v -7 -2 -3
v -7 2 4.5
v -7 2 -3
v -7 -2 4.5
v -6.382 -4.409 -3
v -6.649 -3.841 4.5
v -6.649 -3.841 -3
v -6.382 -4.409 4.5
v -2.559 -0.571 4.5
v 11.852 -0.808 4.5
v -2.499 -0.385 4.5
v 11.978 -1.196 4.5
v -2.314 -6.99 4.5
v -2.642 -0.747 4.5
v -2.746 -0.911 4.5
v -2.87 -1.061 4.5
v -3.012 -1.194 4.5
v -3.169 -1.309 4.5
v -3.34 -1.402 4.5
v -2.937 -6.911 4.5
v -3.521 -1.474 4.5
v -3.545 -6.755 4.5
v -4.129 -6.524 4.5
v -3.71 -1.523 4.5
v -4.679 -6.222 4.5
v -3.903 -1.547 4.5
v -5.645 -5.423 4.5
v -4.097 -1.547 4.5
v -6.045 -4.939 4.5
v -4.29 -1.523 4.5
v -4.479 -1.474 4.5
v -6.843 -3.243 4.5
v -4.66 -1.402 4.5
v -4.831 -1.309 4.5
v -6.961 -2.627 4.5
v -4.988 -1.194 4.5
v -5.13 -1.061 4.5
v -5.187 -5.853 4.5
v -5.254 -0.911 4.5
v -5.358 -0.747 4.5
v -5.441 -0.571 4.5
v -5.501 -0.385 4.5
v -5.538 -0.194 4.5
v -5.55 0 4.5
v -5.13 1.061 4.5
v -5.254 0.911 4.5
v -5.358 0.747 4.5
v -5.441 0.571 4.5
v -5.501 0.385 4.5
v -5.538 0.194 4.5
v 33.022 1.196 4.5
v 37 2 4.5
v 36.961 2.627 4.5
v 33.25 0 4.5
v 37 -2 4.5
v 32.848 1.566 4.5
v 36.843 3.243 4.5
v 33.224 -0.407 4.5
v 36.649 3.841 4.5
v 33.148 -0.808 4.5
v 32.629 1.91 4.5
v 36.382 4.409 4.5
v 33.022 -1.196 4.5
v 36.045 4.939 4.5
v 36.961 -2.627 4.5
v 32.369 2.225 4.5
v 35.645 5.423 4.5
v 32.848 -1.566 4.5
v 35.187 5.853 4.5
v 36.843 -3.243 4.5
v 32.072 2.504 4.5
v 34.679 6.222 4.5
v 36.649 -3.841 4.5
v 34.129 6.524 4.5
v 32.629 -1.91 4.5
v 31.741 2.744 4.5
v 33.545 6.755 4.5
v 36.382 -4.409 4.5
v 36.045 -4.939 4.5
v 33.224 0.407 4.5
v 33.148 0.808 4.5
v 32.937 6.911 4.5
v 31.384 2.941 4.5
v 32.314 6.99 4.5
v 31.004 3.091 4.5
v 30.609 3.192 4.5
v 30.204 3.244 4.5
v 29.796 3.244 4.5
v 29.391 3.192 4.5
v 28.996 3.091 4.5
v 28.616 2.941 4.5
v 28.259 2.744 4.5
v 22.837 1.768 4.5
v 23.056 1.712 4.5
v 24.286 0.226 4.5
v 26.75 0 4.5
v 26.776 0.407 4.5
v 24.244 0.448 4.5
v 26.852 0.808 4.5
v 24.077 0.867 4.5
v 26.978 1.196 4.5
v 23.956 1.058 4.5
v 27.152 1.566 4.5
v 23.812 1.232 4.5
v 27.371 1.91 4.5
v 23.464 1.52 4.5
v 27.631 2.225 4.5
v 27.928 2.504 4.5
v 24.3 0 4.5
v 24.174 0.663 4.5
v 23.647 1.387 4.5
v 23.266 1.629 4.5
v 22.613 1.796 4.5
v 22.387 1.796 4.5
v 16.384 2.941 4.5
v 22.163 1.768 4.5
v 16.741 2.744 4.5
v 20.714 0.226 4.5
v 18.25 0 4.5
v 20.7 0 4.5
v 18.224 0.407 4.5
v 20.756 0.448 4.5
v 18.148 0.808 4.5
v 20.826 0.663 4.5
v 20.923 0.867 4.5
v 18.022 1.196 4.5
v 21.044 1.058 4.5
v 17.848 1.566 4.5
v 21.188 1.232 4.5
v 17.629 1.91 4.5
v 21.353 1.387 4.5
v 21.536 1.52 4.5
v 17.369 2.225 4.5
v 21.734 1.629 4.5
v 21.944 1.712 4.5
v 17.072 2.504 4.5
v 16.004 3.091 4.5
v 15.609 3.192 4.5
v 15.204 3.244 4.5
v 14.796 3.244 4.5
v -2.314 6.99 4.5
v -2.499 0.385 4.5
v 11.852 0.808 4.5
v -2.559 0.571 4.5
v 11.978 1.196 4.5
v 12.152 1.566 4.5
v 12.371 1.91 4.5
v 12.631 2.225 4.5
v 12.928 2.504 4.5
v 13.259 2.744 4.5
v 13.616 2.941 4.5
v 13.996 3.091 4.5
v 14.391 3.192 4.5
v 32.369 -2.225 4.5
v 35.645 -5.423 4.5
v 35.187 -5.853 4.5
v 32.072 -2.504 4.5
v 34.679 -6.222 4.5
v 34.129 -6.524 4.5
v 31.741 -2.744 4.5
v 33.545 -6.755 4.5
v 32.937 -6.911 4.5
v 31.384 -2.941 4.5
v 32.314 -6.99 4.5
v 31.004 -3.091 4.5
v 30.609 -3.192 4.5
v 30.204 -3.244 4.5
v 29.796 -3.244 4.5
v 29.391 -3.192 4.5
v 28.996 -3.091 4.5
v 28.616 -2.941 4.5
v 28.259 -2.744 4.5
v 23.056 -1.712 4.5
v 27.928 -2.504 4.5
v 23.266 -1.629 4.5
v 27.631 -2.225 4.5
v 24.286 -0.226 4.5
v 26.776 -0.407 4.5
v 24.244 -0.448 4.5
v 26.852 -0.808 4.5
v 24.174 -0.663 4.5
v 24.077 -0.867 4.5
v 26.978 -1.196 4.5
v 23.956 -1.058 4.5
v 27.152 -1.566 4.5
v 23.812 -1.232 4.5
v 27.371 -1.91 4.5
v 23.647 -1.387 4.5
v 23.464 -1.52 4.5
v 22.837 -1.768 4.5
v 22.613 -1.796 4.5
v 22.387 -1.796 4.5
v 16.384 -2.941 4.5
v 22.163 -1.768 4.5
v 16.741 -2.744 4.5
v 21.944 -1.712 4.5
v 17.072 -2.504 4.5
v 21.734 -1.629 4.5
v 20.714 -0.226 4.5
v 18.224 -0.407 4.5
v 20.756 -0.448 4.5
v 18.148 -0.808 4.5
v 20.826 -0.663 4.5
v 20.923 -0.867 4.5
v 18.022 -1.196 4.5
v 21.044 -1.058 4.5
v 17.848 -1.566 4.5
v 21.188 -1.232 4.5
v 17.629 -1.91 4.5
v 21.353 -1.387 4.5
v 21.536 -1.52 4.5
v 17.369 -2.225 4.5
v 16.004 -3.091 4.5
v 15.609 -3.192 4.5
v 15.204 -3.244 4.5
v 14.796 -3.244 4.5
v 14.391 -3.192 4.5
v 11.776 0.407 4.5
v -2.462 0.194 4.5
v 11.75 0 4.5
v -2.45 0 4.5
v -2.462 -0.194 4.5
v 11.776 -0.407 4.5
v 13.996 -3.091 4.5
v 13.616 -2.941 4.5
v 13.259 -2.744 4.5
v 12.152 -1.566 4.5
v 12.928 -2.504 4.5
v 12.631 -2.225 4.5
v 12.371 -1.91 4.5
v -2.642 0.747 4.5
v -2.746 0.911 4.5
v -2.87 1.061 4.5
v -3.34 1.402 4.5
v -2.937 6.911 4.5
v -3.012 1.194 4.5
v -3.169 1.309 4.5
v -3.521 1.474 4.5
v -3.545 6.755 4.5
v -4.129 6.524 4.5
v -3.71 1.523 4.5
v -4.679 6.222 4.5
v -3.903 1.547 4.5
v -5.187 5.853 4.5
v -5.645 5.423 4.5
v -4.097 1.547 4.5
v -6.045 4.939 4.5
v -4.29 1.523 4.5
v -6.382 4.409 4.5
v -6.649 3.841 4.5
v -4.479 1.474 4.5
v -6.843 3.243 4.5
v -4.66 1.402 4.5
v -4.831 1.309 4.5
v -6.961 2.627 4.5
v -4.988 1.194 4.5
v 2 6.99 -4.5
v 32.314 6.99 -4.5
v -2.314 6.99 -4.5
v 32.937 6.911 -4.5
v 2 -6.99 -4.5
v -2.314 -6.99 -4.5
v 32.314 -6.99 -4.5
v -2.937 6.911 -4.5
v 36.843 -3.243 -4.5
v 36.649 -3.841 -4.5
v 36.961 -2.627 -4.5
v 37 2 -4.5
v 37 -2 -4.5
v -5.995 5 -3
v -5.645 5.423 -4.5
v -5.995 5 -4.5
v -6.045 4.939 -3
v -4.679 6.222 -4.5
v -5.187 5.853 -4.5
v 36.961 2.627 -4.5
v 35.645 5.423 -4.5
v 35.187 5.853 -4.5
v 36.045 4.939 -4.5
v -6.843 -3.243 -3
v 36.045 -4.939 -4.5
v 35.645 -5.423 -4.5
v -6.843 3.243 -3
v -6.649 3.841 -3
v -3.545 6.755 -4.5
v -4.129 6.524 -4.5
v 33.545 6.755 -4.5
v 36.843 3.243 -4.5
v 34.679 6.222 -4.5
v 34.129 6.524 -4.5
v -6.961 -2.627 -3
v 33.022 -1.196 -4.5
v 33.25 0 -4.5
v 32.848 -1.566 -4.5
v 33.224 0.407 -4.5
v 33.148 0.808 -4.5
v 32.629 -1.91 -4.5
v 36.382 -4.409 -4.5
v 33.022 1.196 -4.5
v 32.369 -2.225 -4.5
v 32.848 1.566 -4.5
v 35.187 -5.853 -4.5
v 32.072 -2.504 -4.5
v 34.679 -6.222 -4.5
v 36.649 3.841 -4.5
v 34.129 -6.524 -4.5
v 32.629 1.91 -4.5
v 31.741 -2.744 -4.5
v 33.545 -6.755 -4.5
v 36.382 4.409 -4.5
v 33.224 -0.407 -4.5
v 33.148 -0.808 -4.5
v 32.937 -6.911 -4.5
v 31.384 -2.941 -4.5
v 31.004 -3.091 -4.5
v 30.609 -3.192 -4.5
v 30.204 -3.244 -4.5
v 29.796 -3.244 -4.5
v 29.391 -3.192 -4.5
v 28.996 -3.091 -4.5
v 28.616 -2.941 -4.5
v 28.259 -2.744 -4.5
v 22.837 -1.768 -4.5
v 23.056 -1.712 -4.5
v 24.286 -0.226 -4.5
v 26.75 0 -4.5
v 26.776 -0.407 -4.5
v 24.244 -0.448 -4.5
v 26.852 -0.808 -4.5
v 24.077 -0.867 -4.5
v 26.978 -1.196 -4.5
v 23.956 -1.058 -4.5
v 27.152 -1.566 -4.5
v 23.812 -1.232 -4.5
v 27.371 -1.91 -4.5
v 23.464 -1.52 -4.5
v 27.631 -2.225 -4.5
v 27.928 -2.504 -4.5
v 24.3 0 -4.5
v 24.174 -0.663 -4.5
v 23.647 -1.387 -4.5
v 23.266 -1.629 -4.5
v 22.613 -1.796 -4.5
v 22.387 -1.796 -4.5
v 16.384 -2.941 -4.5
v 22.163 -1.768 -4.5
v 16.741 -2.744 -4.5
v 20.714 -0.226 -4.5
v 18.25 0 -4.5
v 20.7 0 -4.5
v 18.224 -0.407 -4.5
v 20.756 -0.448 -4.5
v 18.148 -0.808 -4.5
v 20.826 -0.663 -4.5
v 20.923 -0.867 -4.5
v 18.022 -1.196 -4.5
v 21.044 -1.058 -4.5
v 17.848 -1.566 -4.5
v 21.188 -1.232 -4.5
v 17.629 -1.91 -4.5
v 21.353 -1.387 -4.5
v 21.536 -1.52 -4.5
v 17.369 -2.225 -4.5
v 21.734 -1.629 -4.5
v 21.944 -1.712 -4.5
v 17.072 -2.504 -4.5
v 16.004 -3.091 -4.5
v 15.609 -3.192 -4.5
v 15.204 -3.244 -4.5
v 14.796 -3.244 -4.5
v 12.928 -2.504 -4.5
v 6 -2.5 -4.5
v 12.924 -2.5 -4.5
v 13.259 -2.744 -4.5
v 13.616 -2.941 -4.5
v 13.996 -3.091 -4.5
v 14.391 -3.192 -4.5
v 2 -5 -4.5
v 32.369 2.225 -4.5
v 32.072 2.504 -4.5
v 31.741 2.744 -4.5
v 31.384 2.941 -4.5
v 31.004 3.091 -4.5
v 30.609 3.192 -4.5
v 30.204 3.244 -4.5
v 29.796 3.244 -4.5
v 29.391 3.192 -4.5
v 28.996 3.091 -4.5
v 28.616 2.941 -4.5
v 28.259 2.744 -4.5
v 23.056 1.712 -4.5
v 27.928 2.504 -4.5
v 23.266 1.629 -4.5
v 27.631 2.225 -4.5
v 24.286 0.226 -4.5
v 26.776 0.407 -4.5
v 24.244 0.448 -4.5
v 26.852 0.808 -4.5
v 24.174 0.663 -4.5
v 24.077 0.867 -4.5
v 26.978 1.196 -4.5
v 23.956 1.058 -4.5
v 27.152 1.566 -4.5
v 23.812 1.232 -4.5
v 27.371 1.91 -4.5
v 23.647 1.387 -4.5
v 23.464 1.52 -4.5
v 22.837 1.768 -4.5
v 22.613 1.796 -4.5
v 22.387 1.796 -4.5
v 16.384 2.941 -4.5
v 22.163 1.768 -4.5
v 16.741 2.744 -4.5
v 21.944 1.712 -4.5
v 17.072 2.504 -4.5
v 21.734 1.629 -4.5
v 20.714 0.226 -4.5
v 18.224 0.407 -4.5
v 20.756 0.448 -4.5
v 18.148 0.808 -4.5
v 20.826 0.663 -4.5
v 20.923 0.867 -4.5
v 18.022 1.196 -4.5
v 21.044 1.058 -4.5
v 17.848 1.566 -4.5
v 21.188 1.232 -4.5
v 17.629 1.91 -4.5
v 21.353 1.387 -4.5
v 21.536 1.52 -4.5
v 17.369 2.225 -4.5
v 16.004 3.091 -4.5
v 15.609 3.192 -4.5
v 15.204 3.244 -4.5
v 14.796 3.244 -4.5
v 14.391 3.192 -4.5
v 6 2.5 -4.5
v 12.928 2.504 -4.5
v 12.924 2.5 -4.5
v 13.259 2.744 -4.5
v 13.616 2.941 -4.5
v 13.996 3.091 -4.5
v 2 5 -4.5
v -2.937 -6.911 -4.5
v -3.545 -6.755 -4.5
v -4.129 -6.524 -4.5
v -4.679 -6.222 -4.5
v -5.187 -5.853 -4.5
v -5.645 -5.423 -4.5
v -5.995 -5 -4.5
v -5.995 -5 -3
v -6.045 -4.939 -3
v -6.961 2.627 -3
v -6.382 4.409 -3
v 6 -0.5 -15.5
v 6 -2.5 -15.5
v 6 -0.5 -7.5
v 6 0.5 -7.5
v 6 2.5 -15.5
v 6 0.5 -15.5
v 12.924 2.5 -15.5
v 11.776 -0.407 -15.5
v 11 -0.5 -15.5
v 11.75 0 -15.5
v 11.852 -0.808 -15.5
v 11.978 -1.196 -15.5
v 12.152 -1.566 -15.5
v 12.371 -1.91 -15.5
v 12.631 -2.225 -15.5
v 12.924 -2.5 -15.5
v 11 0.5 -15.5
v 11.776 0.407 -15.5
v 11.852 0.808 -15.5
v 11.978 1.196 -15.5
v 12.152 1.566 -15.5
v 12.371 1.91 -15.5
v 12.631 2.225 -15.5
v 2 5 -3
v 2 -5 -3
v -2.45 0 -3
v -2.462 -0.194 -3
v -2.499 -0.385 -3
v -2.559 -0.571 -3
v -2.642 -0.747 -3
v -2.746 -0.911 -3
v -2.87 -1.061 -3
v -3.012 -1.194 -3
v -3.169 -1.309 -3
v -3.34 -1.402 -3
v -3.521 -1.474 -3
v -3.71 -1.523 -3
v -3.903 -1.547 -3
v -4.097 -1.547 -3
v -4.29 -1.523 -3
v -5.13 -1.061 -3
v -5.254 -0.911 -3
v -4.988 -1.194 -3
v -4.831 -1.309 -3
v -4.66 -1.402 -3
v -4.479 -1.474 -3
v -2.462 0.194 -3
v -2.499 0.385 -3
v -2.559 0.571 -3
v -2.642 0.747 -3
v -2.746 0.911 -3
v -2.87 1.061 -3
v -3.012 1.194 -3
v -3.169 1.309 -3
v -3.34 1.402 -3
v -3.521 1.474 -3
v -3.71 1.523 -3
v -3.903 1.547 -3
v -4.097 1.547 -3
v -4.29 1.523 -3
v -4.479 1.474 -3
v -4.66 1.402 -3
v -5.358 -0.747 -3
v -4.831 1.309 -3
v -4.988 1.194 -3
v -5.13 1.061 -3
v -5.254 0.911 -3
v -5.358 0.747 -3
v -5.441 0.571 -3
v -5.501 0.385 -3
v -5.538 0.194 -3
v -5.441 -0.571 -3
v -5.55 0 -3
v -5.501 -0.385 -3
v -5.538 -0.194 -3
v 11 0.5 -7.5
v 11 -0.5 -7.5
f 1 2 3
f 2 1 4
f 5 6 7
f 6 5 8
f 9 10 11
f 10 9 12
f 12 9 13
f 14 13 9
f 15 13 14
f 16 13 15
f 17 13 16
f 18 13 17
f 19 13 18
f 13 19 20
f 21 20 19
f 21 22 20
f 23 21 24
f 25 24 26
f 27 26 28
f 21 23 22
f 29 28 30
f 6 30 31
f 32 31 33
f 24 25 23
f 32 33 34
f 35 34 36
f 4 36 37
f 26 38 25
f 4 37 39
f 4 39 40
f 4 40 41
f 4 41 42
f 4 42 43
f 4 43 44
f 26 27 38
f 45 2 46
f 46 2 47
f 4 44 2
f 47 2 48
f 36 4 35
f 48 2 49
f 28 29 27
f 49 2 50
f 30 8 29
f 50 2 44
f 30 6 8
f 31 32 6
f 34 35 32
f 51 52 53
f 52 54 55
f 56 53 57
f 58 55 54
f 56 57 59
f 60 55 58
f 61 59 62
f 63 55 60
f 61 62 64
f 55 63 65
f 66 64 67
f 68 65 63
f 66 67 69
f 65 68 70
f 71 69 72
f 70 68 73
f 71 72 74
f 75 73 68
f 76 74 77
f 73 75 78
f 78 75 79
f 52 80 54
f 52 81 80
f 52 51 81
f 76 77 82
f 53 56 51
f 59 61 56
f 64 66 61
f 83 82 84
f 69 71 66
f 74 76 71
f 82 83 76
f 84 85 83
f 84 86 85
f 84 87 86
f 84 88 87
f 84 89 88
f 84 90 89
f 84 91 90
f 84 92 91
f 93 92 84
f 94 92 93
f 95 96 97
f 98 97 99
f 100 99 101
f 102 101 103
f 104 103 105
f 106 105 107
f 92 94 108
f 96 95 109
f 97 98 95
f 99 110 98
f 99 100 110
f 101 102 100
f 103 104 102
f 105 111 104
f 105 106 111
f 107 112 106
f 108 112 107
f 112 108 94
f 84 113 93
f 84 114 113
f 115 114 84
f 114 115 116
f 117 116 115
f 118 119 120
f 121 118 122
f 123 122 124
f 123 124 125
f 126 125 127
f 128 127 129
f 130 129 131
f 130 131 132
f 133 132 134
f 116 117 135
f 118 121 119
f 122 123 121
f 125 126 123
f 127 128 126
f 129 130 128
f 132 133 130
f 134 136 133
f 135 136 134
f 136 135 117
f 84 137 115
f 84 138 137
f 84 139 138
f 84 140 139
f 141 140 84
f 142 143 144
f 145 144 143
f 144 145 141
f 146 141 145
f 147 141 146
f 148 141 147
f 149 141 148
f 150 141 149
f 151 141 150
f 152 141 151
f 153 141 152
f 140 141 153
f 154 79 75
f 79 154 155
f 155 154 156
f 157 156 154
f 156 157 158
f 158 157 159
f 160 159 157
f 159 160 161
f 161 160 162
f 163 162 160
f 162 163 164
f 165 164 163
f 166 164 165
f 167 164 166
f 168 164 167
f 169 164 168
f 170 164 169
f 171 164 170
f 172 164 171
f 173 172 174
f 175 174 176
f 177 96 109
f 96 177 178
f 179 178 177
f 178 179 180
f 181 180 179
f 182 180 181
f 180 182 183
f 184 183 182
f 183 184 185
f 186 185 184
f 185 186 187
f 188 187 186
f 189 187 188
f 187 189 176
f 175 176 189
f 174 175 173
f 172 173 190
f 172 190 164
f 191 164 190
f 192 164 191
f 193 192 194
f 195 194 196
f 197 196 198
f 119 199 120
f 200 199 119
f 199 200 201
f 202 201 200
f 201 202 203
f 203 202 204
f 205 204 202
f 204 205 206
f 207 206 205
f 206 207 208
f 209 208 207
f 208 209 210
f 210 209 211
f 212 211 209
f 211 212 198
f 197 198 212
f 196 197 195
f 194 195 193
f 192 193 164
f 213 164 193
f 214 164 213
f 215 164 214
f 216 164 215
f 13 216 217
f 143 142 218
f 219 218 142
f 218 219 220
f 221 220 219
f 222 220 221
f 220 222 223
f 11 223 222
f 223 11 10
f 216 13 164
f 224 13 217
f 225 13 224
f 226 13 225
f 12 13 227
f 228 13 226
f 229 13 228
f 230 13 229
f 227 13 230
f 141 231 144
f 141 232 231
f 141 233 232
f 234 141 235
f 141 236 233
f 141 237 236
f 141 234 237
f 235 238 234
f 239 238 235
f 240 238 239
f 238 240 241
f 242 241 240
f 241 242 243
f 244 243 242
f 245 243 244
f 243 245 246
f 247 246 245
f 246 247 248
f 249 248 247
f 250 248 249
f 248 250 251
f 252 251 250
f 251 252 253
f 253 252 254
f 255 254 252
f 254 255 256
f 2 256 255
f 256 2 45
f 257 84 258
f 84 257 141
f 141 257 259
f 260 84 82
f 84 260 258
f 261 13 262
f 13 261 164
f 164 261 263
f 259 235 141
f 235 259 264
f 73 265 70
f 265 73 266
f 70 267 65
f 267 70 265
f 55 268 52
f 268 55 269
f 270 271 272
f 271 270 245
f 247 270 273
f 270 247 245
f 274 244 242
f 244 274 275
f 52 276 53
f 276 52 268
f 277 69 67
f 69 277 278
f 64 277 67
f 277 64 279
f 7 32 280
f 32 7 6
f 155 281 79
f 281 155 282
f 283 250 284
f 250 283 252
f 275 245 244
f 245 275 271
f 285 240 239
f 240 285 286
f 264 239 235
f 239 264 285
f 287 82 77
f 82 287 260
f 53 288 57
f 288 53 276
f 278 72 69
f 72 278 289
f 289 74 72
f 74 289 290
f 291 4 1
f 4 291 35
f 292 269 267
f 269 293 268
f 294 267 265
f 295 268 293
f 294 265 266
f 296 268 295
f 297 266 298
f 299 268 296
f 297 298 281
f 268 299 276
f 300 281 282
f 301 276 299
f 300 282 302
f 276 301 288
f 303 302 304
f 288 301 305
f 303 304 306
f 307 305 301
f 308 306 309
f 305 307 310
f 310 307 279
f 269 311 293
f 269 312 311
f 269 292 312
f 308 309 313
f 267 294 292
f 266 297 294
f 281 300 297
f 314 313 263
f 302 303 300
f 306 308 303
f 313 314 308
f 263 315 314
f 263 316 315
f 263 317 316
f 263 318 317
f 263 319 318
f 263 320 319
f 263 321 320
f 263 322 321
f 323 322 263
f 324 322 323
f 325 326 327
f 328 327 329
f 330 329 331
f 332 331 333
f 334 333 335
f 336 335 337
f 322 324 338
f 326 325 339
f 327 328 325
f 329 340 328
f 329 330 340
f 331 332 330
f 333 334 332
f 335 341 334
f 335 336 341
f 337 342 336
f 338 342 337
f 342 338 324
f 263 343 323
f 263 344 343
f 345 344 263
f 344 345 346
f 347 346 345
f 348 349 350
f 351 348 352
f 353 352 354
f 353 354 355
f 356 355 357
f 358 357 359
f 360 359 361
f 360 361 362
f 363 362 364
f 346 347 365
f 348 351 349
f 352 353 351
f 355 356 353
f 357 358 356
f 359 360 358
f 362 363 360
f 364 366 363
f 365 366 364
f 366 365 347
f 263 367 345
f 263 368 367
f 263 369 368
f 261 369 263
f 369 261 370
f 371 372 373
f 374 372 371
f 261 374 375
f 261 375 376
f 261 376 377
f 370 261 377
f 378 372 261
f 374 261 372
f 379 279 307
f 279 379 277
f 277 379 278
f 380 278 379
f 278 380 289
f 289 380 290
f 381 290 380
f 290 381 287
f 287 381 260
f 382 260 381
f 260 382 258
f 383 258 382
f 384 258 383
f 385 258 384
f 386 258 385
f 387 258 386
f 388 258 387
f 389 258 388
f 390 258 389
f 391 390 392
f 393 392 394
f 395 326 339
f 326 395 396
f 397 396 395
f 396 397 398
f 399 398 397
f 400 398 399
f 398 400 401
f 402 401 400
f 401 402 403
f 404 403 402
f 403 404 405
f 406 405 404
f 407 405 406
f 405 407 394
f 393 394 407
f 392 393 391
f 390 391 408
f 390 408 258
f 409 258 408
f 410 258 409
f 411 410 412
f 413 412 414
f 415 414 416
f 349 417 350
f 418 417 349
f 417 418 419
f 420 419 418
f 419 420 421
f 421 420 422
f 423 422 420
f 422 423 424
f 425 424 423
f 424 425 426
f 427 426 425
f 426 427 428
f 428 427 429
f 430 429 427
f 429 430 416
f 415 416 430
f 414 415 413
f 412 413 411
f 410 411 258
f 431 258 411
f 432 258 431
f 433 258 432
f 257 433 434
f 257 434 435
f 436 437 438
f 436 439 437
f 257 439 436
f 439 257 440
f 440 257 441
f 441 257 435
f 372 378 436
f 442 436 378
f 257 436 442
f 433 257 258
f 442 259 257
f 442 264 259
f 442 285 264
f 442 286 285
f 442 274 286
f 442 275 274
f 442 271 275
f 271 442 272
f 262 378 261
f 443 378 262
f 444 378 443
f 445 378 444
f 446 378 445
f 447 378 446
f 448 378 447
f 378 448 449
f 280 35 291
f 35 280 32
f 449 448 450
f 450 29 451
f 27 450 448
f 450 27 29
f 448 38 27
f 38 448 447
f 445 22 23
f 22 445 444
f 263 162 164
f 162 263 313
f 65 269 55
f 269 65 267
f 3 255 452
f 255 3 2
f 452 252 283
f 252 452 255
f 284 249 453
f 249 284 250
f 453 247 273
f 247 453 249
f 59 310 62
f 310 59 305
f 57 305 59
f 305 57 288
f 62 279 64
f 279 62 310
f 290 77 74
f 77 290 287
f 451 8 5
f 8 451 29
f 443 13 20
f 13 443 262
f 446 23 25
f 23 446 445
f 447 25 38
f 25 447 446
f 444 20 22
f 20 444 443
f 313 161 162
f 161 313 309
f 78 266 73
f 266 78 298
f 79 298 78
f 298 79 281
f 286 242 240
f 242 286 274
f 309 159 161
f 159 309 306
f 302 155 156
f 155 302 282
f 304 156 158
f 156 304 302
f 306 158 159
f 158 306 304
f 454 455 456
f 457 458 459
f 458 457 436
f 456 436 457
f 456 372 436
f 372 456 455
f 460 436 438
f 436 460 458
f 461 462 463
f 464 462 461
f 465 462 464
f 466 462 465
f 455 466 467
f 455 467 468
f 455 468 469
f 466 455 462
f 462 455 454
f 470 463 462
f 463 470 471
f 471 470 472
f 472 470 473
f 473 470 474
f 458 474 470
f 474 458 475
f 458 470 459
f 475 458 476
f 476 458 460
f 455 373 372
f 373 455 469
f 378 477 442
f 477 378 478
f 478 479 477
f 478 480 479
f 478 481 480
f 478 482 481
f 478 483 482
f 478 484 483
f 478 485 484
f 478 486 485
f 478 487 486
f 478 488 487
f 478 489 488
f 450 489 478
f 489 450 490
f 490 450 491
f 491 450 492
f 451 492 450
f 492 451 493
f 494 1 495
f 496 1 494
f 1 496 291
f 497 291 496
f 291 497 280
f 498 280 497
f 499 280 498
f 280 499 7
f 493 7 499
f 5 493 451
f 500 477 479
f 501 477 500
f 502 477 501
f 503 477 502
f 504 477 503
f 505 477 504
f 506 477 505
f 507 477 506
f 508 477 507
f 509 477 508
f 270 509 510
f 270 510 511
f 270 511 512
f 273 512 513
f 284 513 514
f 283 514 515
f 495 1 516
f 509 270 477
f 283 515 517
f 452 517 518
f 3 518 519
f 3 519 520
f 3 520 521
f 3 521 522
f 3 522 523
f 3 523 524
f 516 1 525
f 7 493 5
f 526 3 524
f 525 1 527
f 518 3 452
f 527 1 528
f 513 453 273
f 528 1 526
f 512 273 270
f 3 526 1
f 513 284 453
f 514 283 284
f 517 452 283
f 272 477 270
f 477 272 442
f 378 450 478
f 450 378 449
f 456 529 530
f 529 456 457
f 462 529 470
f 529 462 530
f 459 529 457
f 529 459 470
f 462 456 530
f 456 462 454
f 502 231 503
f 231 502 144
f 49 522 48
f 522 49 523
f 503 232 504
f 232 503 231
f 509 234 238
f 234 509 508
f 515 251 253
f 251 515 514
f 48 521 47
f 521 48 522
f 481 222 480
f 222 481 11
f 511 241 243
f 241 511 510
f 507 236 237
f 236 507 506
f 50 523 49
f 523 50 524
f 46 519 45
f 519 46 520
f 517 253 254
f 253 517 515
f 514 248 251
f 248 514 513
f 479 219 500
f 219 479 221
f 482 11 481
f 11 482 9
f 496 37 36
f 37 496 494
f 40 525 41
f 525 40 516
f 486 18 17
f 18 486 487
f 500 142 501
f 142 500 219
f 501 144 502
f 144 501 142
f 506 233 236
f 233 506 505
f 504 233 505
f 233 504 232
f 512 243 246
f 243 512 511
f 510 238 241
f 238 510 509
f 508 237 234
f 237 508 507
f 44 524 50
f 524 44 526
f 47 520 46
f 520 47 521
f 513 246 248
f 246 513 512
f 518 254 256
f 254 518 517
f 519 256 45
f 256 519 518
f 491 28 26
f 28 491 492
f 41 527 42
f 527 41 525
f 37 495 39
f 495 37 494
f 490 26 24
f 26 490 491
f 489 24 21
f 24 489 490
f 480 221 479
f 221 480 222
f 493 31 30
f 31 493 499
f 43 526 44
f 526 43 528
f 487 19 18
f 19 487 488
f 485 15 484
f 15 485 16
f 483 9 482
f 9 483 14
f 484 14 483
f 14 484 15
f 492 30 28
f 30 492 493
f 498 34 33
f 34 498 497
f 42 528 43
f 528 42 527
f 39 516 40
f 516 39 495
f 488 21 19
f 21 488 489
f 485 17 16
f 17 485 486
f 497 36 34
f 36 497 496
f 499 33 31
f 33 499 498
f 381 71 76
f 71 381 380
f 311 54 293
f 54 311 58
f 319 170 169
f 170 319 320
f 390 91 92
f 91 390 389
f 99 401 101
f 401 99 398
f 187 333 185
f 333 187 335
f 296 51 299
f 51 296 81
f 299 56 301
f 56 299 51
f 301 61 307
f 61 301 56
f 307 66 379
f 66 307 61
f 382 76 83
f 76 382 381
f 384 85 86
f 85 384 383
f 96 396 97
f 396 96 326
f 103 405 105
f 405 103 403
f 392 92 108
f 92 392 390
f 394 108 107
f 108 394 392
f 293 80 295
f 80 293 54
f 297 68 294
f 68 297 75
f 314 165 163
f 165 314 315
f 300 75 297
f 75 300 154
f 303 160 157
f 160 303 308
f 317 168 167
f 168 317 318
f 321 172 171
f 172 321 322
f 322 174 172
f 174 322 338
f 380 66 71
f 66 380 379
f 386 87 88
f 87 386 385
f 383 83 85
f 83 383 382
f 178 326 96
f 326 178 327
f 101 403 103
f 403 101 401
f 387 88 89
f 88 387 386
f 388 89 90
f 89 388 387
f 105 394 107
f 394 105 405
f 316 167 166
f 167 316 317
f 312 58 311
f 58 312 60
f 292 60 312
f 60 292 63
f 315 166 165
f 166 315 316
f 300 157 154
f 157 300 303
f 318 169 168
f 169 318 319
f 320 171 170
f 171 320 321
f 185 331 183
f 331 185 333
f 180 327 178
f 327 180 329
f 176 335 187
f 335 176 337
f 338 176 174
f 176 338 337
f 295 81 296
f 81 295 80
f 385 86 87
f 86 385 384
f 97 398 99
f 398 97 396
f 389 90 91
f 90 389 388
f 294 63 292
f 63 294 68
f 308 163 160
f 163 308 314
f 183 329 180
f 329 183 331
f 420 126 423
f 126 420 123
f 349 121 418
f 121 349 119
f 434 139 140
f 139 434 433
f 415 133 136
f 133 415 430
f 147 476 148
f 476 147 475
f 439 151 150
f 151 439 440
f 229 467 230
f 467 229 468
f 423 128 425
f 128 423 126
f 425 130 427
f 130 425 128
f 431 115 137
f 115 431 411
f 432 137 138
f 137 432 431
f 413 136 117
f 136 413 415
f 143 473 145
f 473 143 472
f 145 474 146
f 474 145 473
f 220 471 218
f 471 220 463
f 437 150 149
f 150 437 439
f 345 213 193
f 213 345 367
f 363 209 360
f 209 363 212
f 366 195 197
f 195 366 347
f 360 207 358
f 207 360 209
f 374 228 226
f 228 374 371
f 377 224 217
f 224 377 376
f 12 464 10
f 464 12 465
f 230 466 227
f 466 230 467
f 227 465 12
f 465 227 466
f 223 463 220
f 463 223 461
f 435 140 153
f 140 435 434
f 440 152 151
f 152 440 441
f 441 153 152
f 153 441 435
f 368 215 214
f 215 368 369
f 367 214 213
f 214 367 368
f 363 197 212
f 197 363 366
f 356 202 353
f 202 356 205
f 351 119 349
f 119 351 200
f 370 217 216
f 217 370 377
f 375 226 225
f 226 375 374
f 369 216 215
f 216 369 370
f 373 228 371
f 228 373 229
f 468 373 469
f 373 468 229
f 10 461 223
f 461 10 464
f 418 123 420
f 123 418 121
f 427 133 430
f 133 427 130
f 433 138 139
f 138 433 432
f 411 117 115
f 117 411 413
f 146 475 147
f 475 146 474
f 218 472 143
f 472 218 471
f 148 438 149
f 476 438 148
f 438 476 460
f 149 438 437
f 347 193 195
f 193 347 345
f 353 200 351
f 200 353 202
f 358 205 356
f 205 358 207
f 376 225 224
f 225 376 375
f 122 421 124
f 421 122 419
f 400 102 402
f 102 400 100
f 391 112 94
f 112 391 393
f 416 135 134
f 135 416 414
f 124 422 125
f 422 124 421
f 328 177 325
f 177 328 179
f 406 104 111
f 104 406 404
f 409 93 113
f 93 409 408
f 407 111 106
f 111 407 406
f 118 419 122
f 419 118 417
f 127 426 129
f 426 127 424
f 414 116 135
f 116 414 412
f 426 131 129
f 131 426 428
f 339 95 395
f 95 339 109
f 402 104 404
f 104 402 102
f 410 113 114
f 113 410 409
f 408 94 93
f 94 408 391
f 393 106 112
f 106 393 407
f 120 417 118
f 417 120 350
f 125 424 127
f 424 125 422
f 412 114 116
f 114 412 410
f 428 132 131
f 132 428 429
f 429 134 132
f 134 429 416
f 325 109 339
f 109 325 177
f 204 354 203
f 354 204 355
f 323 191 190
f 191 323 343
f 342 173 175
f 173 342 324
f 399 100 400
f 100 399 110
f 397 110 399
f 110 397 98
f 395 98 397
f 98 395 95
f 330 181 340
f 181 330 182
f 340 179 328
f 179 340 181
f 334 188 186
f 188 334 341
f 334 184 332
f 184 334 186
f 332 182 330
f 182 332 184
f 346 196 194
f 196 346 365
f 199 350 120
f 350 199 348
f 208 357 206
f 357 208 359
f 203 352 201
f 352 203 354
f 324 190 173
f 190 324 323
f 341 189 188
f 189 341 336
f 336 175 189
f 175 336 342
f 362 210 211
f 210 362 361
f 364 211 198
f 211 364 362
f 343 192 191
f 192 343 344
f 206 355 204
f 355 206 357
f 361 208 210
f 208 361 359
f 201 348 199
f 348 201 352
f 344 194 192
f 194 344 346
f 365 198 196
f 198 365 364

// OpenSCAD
$fn = 50;


difference() {
	union() {
		*color(alpha = 1.0000000000, c = "gray") {
			translate(v = [15.0000000000, 14, -4.5000000000]) {
				linear_extrude(height = 1) {
					text(font = "Arial:style=Bold", halign = "center", size = 4.5000000000, text = "COMMENT description oobb_plate_shape_positive_type_9_depth_15.0_0_-4.5_pos_electronic_potentiometer_stick_single_axis_16_mm_arm_extra_3_width_1_height_9_thickness_15.0_0_-4.5_pos_plate", valign = "center");
				}
			}
		}
		translate(v = [15.0000000000, 0, -4.5000000000]) {
			hull() {
				translate(v = [-17.0000000000, 2.0000000000, 0]) {
					cylinder(h = 9, r = 5);
				}
				translate(v = [17.0000000000, 2.0000000000, 0]) {
					cylinder(h = 9, r = 5);
				}
				translate(v = [-17.0000000000, -2.0000000000, 0]) {
					cylinder(h = 9, r = 5);
				}
				translate(v = [17.0000000000, -2.0000000000, 0]) {
					cylinder(h = 9, r = 5);
				}
			}
		}
		*color(alpha = 1.0000000000, c = "gray") {
			translate(v = [11, 14, -8]) {
				linear_extrude(height = 1) {
					text(font = "Arial:style=Bold", halign = "center", size = 4.5000000000, text = "COMMENT description oobb_cube_center_shape_positive_type_11_0_-8_pos_electronic_potentiometer_stick_single_axis_16_mm_arm_extra_3_width_1_height_9_thickness_15.0_0_-4.5_pos_plate_10_5_15_size", valign = "center");
				}
			}
		}
		translate(v = [6.0000000000, -2.5000000000, -15.5000000000]) {
			cube(size = [10, 5, 15]);
		}
	}
	union() {
		translate(v = [-10, 0, -12.5000000000]) {
			rotate(a = [0, 90, 0]) {
				difference() {
					union() {
						translate(v = [-8.0000000000, -8.0000000000, 0]) {
							cube(size = [16, 16, 12]);
						}
						translate(v = [5.2500000000, 6.7500000000, -4]) {
							cube(size = [3, 1.5000000000, 4]);
						}
						translate(v = [-8.2500000000, 6.7500000000, -4]) {
							cube(size = [3, 1.5000000000, 4]);
						}
						translate(v = [5.2500000000, -8.2500000000, -4]) {
							cube(size = [3, 1.5000000000, 4]);
						}
						translate(v = [-8.2500000000, -8.2500000000, -4]) {
							cube(size = [3, 1.5000000000, 4]);
						}
						translate(v = [4.5000000000, -9.5000000000, 0]) {
							cube(size = [2, 19, 3.5000000000]);
						}
						translate(v = [-6.5000000000, -9.5000000000, 0]) {
							cube(size = [2, 19, 3.5000000000]);
						}
						translate(v = [8.0000000000, -5.0000000000, -4]) {
							cube(size = [4, 10, 16]);
						}
						translate(v = [-9.5000000000, -5.0000000000, -4]) {
							cube(size = [1.5000000000, 10, 16]);
						}
						translate(v = [-5.0000000000, -0.5000000000, 12]) {
							cube(size = [10, 1, 9]);
						}
					}
					union();
				}
			}
		}
		*color(alpha = 1.0000000000, c = "gray") {
			translate(v = [-4, 14, 0]) {
				linear_extrude(height = 1) {
					text(font = "Arial:style=Bold", halign = "center", size = 4.5000000000, text = "COMMENT description oobb_hole_shape_negative_type_m2d5_radius_name_-4_0_0_pos_electronic_potentiometer_stick_single_axis_16_mm_arm_extra_3_width_1_height_9_thickness_15.0_0_-4.5_pos_plate", valign = "center");
				}
			}
		}
		translate(v = [-4, 0, -50.0000000000]) {
			cylinder(h = 100, r = 1.5500000000);
		}
		*color(alpha = 1.0000000000, c = "gray") {
			translate(v = [15.0000000000, 14, -4.5000000000]) {
				linear_extrude(height = 1) {
					text(font = "Arial:style=Bold", halign = "center", size = 4.5000000000, text = "COMMENT description oobb_holes_shape_negative_type_15.0_0_-4.5_pos_electronic_potentiometer_stick_single_axis_16_mm_arm_extra_3_width_1_height_9_thickness_15.0_0_-4.5_pos_plate_single_holes_3_1_2_1_loc", valign = "center");
				}
			}
		}
		translate(v = [30.0000000000, 0.0000000000, -50.0000000000]) {
			cylinder(h = 100, r = 3.2500000000);
		}
		translate(v = [15.0000000000, 0.0000000000, -50.0000000000]) {
			cylinder(h = 100, r = 3.2500000000);
		}
		*color(alpha = 1.0000000000, c = "gray") {
			translate(v = [15.0000000000, 14, -4.5000000000]) {
				linear_extrude(height = 1) {
					text(font = "Arial:style=Bold", halign = "center", size = 4.5000000000, text = "COMMENT description oobb_holes_shape_negative_type_m3_radius_name_15.0_0_-4.5_pos_electronic_potentiometer_stick_single_axis_16_mm_arm_extra_3_width_1_height_9_thickness_15.0_0_-4.5_pos_plate_single_holes_2.5_1_loc", valign = "center");
				}
			}
		}
		translate(v = [22.5000000000, 0.0000000000, -50.0000000000]) {
			cylinder(h = 100, r = 1.8000000000);
		}
		*color(alpha = 1.0000000000, c = "gray") {
			translate(v = [-10, 14, -12.5000000000]) {
				rotate(a = [0, 90, 0]) {
					linear_extrude(height = 1) {
						text(font = "Arial:style=Bold", halign = "center", size = 4.5000000000, text = "COMMENT description oobb_electronic_potentiometer_stick_single_axis_16_mm_shape_negative_type_-10_0_-12.5_pos_electronic_potentiometer_stick_single_axis_16_mm_arm_extra_3_width_1_height_9_thickness_15.0_0_-4.5_pos_plate_0_90_0_rot_10_width_stick", valign = "center");
					}
				}
			}
		}
	}
}
